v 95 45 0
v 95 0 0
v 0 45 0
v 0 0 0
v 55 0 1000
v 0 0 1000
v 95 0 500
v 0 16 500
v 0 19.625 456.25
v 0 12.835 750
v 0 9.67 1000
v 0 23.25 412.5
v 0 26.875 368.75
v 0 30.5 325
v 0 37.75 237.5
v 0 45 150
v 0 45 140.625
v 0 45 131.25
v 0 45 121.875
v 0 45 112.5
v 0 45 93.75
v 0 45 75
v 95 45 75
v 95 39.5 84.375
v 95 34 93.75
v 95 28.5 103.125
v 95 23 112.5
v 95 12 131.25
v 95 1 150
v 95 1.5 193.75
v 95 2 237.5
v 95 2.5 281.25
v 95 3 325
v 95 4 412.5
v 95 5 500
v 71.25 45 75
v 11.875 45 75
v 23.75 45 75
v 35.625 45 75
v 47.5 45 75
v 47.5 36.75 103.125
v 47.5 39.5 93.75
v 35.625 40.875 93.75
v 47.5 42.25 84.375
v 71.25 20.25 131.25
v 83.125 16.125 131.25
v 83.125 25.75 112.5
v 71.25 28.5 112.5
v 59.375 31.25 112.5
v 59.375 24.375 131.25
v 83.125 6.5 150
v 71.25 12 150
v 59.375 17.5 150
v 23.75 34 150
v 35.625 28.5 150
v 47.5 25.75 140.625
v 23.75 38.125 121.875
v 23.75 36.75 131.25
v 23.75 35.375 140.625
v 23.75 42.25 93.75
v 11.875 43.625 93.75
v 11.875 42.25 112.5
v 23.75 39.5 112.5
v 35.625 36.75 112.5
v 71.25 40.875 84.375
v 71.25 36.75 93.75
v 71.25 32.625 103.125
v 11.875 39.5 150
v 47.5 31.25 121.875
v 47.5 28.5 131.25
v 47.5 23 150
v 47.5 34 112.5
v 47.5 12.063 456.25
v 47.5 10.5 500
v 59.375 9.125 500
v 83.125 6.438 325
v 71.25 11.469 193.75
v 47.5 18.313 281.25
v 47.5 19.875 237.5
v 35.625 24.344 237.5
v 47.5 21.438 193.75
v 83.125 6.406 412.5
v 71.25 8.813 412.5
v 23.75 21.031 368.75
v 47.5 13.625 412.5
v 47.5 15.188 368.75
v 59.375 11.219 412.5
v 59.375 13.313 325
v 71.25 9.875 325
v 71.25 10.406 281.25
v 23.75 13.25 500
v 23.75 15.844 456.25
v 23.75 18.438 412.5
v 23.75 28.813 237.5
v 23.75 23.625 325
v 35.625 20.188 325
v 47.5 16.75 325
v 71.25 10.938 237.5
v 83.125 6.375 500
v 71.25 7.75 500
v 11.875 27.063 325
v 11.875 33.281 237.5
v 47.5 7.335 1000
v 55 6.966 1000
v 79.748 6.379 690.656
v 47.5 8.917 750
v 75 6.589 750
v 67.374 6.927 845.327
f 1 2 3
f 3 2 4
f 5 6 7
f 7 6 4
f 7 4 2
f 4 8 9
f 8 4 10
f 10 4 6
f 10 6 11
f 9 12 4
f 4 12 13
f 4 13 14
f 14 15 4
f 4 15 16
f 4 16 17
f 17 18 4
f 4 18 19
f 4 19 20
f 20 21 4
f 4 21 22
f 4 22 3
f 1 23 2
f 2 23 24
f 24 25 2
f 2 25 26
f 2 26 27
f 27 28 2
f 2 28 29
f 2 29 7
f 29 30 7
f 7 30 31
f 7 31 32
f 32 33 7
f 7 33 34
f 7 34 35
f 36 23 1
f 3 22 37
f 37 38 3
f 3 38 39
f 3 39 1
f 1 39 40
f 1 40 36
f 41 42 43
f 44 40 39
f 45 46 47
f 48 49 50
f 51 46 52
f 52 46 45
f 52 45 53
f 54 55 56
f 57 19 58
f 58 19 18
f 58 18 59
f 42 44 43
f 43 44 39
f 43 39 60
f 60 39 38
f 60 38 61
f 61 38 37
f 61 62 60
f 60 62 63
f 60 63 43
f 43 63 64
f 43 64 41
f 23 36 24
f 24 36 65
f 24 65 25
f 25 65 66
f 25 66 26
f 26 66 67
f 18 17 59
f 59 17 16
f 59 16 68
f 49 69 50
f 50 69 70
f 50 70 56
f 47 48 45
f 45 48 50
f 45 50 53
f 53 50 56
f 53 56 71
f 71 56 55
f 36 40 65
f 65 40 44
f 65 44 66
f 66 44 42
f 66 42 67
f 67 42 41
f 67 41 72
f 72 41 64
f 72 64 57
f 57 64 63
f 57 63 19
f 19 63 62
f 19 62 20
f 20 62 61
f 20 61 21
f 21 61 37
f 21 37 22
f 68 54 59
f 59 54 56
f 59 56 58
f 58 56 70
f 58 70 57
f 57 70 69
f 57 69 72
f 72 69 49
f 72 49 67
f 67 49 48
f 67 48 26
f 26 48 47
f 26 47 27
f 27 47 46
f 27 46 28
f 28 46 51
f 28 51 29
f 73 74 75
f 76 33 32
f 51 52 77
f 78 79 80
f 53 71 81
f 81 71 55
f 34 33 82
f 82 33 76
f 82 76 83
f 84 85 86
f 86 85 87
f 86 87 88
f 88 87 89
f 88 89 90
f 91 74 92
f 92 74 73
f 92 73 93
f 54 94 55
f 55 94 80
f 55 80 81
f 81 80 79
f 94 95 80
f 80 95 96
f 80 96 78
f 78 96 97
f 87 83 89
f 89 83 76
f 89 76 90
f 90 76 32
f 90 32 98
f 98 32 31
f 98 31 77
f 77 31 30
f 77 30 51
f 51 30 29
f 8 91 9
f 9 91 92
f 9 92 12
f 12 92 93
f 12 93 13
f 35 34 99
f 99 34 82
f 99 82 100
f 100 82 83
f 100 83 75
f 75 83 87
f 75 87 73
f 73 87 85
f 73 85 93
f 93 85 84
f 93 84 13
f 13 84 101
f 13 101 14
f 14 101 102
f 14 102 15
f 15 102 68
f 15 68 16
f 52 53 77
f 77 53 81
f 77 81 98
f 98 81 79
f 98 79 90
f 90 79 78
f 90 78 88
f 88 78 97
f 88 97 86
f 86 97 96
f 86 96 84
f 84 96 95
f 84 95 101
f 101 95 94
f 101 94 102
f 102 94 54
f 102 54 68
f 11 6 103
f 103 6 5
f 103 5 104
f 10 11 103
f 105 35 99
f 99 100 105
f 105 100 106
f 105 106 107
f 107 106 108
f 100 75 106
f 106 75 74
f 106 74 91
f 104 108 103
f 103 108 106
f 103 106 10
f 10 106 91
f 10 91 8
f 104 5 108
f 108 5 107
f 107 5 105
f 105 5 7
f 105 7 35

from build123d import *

# Parameters (mm, degrees)
CUT_EXTRUDE2_DEPTH      = 1006.50982105
CUT_EXTRUDE2_DEPTH_BACK = 1006.50982105


with BuildPart() as part:
    # Sketch1 → Loft3 section 0
    with BuildSketch(Plane.XY):
        with BuildLine():
            Line((0, 0), (95, 0))
            Line((95, 0), (95, 45))
            Line((95, 45), (0, 45))
            Line((0, 45), (0, 0))
        make_face()
    # Sketch2 → Loft3 section 1
    with BuildSketch(Plane.XY.offset(75)):
        with BuildLine():
            Line((0, 0), (95, 0))
            Line((95, 0), (95, 45))
            Line((95, 45), (0, 45))
            Line((0, 45), (0, 0))
        make_face()
    loft()

    # Sketch3 → section 1 of loft4
    with BuildSketch(Plane.XY.offset(150), mode=Mode.PRIVATE) as loft4_s1:
        with BuildLine():
            Line((0, 0), (0, 45))
            Line((0, 45), (95, 1))
            Line((95, 1), (95, 0))
            Line((95, 0), (0, 0))
        make_face()
    # loft from a face of the part (loft4)
    loft([part.faces().sort_by_distance((47.5, 22.5, 75))[0], loft4_s1.sketch])

    # Sketch4 → section 1 of loft5
    with BuildSketch(Plane.XY.offset(500), mode=Mode.PRIVATE) as loft5_s1:
        with BuildLine():
            Line((0, 0), (0, 16))
            Line((0, 16), (95, 5))
            Line((95, 5), (95, 0))
            Line((95, 0), (0, 0))
        make_face()
    # loft from a face of the part (loft5)
    loft([part.faces().sort_by_distance((32.355072464, 15.007246377, 150))[0], loft5_s1.sketch])

    # Sketch6 → section 1 of loft6
    with BuildSketch(Plane.XY.offset(1000), mode=Mode.PRIVATE) as loft6_s1:
        with BuildLine():
            Line((0, 0), (0, 9.669407938))
            Line((0, 9.669407938), (95, 5))
            Line((95, 5), (95, 0))
            Line((95, 0), (0, 0))
        make_face()
    # loft from a face of the part (loft6)
    loft([part.faces().sort_by_distance((39.206349206, 5.73015873, 500))[0], loft6_s1.sketch])

    # Sketch7 → Cut-Extrude2 (cut, two sides: drawn at the far end of the back side and taken through both)
    with BuildSketch(Plane(origin=(0, 0, 0), x_dir=(1, 0, 0), z_dir=(0, 1, 0)).offset(-CUT_EXTRUDE2_DEPTH_BACK)):
        Polygon((55, -1000), (95, -500), (95, -1000), align=None)
    extrude(amount=CUT_EXTRUDE2_DEPTH + CUT_EXTRUDE2_DEPTH_BACK, mode=Mode.SUBTRACT)


solid = part.part
